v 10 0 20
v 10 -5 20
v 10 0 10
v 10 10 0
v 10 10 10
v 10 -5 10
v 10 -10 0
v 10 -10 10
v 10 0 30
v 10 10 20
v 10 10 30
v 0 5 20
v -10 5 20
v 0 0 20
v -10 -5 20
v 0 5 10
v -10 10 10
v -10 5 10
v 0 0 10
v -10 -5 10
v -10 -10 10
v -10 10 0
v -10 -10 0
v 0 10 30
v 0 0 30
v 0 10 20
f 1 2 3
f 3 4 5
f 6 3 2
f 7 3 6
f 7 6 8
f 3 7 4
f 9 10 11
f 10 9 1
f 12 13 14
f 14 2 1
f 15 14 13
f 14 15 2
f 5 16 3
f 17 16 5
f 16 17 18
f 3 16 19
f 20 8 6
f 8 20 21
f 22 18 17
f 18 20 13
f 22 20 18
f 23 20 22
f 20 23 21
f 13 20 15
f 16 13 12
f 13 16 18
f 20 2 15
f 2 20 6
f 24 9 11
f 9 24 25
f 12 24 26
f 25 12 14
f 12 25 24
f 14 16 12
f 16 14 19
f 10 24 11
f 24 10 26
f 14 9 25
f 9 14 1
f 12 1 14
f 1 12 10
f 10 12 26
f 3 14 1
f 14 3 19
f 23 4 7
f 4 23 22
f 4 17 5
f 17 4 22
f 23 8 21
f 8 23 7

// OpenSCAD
// Base block
module base_block() {
    // Ensure the base block has a flat and uniform surface
    cube([20, 20, 10], center = true);
}

// L-shaped connector
module l_shaped_connector() {
    // Adjusted to align symmetrically with the base block
    difference() {
        union() {
            cube([20, 10, 10], center = true);
            translate([5, 5, 5]) // Adjusted position for symmetry
                cube([10, 10, 20], center = true);
        }
        translate([5, 5, 0]) // Adjusted cutout position for alignment
            cube([10, 10, 10], center = true);
    }
}

// Triangular support
module triangular_support() {
    // Adjusted position and orientation to align with other components
    polyhedron(
        points = [
            [0, 0, 0], [10, 0, 0], [0, 10, 0], // Base vertices
            [0, 0, 10]                        // Apex vertex
        ],
        faces = [
            [0, 1, 2], [0, 1, 3], [1, 2, 3], [2, 0, 3]
        ]
    );
}

// Assembly
module assembly() {
    // Layer 1: Base block
    translate([0, 0, 5])
        base_block();

    // Layer 2: L-shaped connector
    // Repositioned to align symmetrically with the base block
    translate([0, 0, 15]) // Adjusted height for proper alignment
        l_shaped_connector();

    // Layer 3: Triangular support
    // Adjusted position and orientation for seamless integration
    translate([0, 0, 25])
        rotate([0, 0, 0]) // Removed unnecessary rotation
        triangular_support();
}

// Render the assembly
assembly();
